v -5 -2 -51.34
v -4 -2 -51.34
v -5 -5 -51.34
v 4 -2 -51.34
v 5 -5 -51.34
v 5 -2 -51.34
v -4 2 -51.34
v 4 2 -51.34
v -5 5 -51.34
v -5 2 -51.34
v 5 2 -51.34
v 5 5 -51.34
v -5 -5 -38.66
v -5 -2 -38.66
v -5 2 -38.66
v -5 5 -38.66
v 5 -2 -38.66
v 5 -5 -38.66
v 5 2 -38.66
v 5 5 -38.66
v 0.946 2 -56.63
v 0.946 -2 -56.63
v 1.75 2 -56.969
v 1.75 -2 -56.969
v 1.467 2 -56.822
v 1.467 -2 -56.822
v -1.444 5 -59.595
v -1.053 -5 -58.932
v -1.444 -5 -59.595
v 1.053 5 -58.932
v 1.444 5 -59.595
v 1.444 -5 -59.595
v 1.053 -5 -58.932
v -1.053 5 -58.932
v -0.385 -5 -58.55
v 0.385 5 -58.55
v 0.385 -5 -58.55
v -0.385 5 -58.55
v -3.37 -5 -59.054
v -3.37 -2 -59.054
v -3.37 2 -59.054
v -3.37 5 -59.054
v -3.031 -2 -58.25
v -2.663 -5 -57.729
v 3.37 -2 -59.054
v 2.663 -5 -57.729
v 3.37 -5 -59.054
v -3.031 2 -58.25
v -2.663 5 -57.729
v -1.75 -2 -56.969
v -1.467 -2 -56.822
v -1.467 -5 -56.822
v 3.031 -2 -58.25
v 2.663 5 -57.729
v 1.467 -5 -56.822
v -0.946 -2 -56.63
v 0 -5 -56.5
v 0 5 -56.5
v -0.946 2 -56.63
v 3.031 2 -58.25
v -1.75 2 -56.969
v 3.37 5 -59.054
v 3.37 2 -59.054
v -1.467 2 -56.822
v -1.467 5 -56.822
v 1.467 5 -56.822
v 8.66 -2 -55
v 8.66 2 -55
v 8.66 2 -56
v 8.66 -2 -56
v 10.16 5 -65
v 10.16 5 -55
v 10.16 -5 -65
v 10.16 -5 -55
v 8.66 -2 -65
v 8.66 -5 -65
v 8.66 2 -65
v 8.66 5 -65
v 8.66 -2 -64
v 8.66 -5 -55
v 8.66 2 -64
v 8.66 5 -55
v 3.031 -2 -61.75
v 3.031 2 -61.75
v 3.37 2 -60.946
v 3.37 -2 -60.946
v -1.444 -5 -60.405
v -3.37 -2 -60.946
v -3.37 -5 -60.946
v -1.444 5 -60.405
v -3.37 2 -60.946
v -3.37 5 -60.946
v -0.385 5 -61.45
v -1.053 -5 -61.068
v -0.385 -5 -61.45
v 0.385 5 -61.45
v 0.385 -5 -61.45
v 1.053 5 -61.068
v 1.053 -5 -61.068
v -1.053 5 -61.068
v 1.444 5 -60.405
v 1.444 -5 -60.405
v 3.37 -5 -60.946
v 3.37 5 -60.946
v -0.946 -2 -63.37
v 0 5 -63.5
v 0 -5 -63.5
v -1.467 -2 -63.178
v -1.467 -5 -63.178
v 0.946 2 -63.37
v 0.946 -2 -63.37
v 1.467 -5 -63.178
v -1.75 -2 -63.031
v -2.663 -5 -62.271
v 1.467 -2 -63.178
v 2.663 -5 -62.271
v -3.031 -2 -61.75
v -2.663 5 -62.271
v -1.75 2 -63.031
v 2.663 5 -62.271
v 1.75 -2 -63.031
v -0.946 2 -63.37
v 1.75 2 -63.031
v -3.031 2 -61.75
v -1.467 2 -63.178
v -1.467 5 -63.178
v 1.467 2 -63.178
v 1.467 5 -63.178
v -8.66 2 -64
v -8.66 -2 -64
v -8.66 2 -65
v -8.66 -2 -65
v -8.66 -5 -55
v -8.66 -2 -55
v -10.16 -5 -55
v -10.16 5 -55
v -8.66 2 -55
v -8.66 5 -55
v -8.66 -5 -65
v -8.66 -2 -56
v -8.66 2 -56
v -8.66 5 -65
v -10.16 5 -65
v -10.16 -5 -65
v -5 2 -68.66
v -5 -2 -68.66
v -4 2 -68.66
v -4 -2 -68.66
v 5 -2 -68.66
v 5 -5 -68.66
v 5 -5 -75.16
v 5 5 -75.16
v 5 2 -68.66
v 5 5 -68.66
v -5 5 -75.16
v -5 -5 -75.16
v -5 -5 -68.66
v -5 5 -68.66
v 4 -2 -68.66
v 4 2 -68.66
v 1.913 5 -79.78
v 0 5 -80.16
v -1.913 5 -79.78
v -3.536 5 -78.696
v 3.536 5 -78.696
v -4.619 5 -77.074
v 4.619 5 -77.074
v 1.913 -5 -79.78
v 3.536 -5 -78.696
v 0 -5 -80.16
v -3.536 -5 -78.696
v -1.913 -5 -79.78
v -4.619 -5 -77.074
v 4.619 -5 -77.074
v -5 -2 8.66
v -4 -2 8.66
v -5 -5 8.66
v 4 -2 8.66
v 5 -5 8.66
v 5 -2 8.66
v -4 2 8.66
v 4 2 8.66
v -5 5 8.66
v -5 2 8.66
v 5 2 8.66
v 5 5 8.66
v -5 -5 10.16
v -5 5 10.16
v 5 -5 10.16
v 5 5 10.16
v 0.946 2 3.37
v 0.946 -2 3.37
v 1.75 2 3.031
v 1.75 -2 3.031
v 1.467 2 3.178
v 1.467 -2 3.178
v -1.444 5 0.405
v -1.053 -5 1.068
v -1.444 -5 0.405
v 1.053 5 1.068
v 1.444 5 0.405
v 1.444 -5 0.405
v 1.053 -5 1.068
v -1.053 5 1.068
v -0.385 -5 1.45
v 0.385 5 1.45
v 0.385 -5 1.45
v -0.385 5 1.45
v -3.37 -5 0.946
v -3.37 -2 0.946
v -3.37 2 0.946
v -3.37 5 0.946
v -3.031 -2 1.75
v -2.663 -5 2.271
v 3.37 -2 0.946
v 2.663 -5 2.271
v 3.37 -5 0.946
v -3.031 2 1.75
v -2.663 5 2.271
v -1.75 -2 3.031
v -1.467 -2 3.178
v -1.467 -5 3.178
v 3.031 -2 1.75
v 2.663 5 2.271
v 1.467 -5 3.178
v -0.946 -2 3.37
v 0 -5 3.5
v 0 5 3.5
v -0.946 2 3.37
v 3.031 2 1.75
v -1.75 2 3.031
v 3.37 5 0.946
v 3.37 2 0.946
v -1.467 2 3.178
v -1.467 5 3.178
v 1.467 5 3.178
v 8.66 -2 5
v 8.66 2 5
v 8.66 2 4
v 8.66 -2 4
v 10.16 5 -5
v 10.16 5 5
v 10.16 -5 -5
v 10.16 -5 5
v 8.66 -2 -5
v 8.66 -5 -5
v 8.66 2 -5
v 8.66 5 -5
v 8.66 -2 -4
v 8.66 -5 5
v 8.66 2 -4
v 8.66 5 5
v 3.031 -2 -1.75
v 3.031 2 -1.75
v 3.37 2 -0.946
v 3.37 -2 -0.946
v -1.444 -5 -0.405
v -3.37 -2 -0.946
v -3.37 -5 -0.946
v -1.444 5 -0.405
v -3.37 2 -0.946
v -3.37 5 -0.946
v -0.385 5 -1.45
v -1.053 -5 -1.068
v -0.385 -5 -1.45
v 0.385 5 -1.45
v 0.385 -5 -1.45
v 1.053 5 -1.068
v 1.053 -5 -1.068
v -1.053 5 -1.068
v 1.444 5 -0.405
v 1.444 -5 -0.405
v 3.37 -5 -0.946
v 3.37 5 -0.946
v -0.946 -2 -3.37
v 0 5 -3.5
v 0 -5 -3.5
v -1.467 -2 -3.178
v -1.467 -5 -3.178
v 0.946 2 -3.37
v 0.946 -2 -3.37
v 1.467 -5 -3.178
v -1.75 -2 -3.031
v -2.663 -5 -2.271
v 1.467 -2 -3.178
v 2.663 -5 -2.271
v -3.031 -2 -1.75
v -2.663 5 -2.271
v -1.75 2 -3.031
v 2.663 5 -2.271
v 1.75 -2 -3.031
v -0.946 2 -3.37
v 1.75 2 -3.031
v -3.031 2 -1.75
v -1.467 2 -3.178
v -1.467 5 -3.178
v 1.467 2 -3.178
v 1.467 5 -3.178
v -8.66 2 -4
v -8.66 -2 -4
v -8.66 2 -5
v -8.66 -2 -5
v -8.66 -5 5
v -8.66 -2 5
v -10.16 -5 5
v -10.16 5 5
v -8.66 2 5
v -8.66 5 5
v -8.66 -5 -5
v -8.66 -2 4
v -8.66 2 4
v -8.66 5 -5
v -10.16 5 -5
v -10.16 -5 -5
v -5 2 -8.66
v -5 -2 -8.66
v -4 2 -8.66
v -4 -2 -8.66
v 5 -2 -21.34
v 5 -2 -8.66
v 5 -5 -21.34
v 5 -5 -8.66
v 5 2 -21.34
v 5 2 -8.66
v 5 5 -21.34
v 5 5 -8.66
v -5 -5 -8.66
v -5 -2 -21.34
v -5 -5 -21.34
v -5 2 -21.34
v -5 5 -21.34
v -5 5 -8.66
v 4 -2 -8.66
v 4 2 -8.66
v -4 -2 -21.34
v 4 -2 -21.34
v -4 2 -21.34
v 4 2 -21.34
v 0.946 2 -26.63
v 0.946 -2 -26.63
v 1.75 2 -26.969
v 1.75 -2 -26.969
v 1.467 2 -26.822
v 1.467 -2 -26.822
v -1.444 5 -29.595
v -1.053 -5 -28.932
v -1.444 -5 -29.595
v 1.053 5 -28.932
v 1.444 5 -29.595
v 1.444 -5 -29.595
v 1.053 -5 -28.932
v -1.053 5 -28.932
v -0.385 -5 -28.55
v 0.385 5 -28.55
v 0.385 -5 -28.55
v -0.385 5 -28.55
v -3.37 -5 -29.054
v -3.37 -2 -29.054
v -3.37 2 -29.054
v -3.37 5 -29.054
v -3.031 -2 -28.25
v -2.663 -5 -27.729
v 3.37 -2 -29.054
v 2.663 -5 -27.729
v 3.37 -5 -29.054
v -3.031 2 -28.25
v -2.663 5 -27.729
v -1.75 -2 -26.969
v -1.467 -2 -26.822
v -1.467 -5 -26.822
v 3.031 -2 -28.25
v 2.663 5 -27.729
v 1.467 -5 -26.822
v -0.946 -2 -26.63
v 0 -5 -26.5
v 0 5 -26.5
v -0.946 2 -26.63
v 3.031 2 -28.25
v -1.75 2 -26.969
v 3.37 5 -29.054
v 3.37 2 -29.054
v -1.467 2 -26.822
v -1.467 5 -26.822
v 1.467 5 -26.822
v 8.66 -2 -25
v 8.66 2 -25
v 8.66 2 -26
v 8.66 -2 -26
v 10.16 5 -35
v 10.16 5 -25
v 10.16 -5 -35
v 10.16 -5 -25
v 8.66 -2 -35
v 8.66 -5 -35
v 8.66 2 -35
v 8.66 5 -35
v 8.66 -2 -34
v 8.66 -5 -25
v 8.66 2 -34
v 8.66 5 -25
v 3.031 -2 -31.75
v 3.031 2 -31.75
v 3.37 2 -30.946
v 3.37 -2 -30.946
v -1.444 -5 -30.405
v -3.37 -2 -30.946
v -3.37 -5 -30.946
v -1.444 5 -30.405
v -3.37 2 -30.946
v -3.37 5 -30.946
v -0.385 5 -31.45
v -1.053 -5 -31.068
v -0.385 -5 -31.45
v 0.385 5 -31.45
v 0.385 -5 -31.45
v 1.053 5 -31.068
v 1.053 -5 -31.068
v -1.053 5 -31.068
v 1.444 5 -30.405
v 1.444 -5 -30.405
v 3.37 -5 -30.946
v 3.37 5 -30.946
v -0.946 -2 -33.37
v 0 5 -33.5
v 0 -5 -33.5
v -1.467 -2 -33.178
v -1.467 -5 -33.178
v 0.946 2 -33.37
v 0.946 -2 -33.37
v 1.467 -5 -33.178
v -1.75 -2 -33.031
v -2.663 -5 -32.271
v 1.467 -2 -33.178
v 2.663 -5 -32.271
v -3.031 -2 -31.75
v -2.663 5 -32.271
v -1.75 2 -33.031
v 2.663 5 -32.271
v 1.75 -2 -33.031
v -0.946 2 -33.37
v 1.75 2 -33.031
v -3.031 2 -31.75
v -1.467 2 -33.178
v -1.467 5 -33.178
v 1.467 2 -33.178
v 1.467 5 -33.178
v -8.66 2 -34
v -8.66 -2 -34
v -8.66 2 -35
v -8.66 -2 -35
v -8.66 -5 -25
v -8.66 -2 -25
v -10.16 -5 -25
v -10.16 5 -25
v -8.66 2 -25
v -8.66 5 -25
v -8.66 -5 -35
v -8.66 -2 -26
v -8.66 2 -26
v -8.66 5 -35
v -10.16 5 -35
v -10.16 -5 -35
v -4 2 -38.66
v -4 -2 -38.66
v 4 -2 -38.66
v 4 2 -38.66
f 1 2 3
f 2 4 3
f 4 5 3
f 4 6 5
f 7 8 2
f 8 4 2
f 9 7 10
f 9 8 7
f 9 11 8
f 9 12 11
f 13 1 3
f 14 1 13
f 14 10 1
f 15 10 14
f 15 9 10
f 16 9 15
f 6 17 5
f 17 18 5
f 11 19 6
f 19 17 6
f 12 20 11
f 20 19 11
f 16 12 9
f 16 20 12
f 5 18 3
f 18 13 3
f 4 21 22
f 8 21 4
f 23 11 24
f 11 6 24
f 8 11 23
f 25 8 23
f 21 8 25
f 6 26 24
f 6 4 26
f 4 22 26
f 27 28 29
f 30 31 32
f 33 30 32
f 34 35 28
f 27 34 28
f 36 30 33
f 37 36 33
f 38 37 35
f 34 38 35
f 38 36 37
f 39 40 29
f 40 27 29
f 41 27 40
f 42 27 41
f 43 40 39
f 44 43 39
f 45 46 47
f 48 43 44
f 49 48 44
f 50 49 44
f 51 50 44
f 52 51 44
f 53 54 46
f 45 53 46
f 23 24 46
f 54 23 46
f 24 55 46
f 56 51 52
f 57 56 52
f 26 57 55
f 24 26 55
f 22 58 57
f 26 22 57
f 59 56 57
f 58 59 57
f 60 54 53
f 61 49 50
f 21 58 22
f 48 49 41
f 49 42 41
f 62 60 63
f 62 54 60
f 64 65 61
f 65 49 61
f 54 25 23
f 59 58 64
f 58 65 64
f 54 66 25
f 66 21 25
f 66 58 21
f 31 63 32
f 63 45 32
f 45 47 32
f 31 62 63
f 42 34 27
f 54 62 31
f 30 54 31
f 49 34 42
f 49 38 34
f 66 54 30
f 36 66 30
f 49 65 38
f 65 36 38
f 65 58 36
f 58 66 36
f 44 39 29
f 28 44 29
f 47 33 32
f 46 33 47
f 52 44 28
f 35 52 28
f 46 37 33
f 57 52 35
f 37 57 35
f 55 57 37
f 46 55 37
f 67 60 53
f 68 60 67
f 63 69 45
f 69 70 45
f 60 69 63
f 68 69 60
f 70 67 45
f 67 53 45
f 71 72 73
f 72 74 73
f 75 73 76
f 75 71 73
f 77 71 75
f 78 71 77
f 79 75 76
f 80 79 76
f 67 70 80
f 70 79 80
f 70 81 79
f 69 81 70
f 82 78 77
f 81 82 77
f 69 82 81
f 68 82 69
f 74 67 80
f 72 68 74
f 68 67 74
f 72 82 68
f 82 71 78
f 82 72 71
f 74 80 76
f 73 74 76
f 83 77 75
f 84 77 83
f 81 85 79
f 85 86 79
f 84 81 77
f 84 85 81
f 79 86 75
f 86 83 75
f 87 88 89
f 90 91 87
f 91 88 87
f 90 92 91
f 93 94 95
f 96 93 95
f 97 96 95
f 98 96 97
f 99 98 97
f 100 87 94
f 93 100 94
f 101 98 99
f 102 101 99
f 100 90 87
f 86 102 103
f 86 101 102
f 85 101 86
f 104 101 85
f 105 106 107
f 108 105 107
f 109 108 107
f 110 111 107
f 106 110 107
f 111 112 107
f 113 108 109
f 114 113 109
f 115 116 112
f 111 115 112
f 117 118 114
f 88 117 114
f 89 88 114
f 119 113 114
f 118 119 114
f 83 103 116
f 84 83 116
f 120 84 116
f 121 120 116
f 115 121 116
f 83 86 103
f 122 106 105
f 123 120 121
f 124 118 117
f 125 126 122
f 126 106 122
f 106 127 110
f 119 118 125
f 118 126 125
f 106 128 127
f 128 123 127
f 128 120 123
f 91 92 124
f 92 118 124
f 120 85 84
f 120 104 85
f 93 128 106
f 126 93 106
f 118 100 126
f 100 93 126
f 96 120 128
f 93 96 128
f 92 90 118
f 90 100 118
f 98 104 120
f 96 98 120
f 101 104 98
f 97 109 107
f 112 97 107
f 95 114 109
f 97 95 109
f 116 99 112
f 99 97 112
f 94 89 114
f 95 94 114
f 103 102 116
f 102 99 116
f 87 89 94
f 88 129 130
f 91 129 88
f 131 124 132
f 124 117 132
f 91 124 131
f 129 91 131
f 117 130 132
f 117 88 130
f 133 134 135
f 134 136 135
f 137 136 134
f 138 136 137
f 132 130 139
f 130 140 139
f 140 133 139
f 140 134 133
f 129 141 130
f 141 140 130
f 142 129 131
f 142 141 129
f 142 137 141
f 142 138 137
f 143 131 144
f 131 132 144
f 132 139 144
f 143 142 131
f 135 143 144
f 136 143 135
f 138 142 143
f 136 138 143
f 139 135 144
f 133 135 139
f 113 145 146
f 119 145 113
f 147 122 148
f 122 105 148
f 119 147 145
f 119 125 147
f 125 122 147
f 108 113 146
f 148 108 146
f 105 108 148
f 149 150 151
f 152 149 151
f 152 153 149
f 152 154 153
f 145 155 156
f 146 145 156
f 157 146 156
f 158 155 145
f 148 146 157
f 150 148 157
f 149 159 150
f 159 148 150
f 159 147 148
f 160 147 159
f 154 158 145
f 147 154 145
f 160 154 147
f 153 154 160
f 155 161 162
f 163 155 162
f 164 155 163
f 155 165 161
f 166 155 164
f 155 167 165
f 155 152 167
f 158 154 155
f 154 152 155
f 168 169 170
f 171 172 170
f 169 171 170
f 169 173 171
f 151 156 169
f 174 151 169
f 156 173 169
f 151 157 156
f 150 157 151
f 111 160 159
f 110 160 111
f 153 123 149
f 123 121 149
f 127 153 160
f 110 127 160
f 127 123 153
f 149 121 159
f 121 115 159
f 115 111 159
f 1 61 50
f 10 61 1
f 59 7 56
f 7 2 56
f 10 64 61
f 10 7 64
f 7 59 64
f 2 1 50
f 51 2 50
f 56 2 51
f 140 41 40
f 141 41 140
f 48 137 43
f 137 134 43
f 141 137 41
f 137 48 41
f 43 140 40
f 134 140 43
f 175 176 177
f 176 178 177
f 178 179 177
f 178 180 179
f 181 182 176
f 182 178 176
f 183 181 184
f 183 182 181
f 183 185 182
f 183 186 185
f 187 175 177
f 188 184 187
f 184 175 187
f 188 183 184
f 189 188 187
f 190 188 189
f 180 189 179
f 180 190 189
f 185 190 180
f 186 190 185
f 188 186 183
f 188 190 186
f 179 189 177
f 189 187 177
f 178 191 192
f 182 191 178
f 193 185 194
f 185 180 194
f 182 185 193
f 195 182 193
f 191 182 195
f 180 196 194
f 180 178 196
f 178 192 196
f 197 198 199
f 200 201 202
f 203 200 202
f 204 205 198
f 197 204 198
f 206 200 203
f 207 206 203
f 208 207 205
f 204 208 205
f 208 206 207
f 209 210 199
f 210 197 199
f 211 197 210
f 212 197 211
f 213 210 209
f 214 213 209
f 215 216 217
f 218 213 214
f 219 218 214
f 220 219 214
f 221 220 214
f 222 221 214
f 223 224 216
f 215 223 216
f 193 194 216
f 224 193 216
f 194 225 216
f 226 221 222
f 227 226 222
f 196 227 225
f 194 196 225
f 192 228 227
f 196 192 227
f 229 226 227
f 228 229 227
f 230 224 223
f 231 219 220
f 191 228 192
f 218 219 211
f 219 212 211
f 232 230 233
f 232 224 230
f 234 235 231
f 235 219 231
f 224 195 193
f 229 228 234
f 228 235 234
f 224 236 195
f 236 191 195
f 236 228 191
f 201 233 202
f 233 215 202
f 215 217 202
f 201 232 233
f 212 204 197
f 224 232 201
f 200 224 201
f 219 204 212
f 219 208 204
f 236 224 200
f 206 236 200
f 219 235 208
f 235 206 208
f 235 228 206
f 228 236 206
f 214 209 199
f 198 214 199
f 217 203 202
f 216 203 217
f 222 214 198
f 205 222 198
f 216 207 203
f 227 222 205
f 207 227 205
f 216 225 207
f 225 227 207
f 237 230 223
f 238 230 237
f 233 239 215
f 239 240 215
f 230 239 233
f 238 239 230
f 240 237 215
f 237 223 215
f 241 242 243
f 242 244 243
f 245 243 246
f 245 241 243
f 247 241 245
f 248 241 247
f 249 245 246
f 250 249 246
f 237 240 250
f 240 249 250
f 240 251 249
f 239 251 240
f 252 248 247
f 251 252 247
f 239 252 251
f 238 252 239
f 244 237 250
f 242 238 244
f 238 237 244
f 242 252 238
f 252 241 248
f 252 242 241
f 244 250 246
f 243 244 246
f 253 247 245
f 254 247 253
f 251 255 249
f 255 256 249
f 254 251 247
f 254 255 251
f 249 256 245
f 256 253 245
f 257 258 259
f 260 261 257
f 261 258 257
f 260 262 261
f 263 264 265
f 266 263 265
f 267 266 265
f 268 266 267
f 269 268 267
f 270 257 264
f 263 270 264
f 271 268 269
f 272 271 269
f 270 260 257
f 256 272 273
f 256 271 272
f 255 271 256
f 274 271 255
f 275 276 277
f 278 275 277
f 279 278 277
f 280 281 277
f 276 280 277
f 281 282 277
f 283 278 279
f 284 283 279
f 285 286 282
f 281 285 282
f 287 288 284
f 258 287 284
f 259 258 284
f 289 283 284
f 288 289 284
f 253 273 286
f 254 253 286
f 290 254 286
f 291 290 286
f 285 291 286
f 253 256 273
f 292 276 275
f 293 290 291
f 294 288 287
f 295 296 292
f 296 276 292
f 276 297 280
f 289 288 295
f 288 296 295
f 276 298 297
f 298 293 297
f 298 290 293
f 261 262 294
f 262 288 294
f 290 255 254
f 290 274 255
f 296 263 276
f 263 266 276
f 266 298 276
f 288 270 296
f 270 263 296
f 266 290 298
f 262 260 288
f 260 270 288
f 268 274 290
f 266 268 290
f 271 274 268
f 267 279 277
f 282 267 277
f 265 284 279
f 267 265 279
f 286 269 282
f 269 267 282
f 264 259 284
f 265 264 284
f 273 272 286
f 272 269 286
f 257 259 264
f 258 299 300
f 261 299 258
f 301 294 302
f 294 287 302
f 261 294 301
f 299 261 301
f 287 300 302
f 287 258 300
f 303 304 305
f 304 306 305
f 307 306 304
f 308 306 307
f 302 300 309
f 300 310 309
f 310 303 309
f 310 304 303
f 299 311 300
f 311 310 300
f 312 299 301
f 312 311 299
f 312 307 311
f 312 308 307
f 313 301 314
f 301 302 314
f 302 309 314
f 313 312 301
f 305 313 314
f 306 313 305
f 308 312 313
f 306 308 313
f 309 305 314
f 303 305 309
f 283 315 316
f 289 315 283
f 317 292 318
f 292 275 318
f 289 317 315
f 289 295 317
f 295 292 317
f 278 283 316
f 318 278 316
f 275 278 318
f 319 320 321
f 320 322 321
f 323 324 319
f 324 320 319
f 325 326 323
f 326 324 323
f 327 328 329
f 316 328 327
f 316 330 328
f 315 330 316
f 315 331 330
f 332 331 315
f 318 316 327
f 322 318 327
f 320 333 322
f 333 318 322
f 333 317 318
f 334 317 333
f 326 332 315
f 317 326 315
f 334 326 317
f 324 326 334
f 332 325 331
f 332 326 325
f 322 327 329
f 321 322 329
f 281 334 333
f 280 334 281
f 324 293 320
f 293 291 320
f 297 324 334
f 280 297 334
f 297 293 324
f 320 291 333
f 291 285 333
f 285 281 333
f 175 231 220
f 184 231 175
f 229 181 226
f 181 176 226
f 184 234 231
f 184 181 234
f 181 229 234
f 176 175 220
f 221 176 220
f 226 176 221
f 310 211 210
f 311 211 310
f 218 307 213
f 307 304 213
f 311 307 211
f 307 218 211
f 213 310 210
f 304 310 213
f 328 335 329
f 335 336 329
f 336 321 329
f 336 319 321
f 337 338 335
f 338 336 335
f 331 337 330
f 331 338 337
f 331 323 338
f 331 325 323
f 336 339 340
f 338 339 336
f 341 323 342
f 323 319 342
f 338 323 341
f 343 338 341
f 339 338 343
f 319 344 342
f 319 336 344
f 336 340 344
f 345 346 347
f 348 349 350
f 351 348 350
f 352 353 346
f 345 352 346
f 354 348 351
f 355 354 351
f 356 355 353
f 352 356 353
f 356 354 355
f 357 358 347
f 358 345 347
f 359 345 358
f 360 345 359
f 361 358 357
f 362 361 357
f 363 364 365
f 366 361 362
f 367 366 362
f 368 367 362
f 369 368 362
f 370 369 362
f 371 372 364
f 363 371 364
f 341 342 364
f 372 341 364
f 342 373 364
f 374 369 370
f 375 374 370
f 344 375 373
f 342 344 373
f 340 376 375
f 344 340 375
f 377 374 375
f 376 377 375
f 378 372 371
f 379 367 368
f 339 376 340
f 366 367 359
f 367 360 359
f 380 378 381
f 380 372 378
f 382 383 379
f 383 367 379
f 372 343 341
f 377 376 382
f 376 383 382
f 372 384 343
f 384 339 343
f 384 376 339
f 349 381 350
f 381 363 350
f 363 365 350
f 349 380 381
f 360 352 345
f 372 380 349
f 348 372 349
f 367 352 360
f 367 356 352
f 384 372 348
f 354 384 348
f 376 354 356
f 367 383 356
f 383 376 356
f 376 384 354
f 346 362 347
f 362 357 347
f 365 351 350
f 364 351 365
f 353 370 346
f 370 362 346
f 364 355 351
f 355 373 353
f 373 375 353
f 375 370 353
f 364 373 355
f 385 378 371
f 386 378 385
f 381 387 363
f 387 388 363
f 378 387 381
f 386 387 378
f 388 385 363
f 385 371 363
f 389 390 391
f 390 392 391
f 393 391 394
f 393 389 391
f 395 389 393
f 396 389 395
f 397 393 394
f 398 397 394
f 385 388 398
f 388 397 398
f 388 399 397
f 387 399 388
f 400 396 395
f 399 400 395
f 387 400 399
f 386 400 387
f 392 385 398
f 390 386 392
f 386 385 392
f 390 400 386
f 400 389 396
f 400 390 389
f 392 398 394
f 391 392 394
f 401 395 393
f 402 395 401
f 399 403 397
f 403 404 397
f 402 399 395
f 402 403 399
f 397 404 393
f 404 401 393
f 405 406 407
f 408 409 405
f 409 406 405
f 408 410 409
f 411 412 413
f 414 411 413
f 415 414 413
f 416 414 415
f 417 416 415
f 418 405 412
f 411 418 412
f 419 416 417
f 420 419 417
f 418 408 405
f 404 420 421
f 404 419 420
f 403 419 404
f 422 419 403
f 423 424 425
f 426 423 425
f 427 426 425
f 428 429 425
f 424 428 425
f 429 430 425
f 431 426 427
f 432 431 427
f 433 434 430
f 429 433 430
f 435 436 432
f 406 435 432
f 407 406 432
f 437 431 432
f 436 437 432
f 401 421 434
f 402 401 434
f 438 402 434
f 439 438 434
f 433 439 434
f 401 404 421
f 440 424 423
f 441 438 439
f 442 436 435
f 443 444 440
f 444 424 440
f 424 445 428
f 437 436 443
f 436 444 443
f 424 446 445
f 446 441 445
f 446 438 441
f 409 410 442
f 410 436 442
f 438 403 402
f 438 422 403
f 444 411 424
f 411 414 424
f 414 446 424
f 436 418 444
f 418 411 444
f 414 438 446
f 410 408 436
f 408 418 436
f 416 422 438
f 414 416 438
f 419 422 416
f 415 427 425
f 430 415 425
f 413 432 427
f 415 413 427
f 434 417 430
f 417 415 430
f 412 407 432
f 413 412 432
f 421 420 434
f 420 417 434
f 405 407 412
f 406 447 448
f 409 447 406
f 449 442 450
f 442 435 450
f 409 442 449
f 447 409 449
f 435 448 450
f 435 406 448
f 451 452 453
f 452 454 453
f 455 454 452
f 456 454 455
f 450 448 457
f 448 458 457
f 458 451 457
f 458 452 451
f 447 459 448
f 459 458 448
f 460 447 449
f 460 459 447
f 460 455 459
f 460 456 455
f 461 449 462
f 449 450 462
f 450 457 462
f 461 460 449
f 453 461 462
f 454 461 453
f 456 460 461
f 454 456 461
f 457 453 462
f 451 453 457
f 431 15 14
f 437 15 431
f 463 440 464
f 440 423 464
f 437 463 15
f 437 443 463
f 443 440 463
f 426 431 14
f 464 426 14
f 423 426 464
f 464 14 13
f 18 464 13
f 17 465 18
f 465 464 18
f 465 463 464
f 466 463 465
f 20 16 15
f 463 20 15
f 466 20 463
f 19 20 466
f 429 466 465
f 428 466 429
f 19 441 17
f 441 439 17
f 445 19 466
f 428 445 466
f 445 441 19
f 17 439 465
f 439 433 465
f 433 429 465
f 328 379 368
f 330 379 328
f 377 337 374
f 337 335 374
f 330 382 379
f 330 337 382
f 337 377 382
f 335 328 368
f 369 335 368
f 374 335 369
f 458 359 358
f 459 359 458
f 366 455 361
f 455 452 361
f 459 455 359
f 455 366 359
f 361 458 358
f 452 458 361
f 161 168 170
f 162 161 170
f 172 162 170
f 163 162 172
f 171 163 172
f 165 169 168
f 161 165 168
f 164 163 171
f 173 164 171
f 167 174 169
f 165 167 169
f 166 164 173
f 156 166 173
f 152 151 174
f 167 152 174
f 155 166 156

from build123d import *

# Parameters (mm, degrees)
SKETCH1_W                     = 10
SKETCH1_H                     = 1.5
BASE_BUTTERFLY_BLOCKS_DEPTH   = 5
SKETCH1_W_2                   = 1.5
SKETCH1_H_2                   = 10
BASE_BUTTERFLY_BLOCKS_2_DEPTH = 5
BASE_BUTTERFLY_BLOCKS_3_DEPTH = 5
BASE_BUTTERFLY_BLOCKS_4_DEPTH = 5
BASE_BUTTERFLY_BLOCKS_5_DEPTH = 5
BASE_BUTTERFLY_BLOCKS_6_DEPTH = 5
BASE_BUTTERFLY_FLEXURES_DEPTH = 2
LPATTERN1_COUNT               = 3
LPATTERN1_PITCH               = 30
SKETCH3_W                     = 10
SKETCH3_H                     = 10
PIP_DEPTH                     = 9.679491924
SKETCH5_W                     = 10
SKETCH5_H                     = 10
BOSS_EXTRUDE7_DEPTH           = 9.679491924
SKETCH6_W                     = 10
SKETCH6_H                     = 5
BOSS_EXTRUDE9_DEPTH           = 10


with BuildPart() as part:
    # Sketch1 → base_butterfly_blocks (new, symmetric)
    with BuildSketch(Plane(origin=(0, 0, 0), x_dir=(1, 0, 0), z_dir=(0, 1, 0))):
        with Locations((0, -9.410254038)):
            Rectangle(SKETCH1_W, SKETCH1_H)
    extrude(amount=BASE_BUTTERFLY_BLOCKS_DEPTH, both=True)



with BuildPart() as body_2:
    # Sketch1 → base_butterfly_blocks 2 (new, symmetric)
    with BuildSketch(Plane(origin=(0, 0, 0), x_dir=(1, 0, 0), z_dir=(0, 1, 0))):
        with Locations((-9.410254038, 0)):
            Rectangle(SKETCH1_W_2, SKETCH1_H_2)
    extrude(amount=BASE_BUTTERFLY_BLOCKS_2_DEPTH, both=True)


with BuildPart() as body_3:
    # Sketch1 → base_butterfly_blocks 3 (new, symmetric)
    with BuildSketch(Plane(origin=(0, 0, 0), x_dir=(1, 0, 0), z_dir=(0, 1, 0))):
        with Locations((0, 9.410254038)):
            Rectangle(SKETCH1_W, SKETCH1_H)
    extrude(amount=BASE_BUTTERFLY_BLOCKS_3_DEPTH, both=True)


with BuildPart() as body_4:
    # Sketch1 → base_butterfly_blocks 4 (new, symmetric)
    with BuildSketch(Plane(origin=(0, 0, 0), x_dir=(1, 0, 0), z_dir=(0, 1, 0))):
        with Locations((9.410254038, 0)):
            Rectangle(SKETCH1_W_2, SKETCH1_H_2)
    extrude(amount=BASE_BUTTERFLY_BLOCKS_4_DEPTH, both=True)


with BuildPart() as body_5:
    # Sketch1 → base_butterfly_blocks 5 (new, symmetric)
    with BuildSketch(Plane(origin=(0, 0, 0), x_dir=(1, 0, 0), z_dir=(0, 1, 0))):
        with BuildLine():
            Line((-1.444220457, 0.405249641), (-3.369847733, 0.945582496))
            ThreePointArc((-3.369847733, 0.945582496), (0, 3.5), (3.369847733, 0.945582496))
            Line((3.369847733, 0.945582496), (1.444220457, 0.405249641))
            ThreePointArc((1.444220457, 0.405249641), (0, 1.5), (-1.444220457, 0.405249641))
        make_face()
    extrude(amount=BASE_BUTTERFLY_BLOCKS_5_DEPTH, both=True)


with BuildPart() as body_6:
    # Sketch1 → base_butterfly_blocks 6 (new, symmetric)
    with BuildSketch(Plane(origin=(0, 0, 0), x_dir=(1, 0, 0), z_dir=(0, 1, 0))):
        with BuildLine():
            ThreePointArc((-1.444220457, -0.405249641), (0, -1.5), (1.444220457, -0.405249641))
            Line((1.444220457, -0.405249641), (3.369847733, -0.945582496))
            ThreePointArc((3.369847733, -0.945582496), (0, -3.5), (-3.369847733, -0.945582496))
            Line((-3.369847733, -0.945582496), (-1.444220457, -0.405249641))
        make_face()
    extrude(amount=BASE_BUTTERFLY_BLOCKS_6_DEPTH, both=True)


with BuildPart() as part_1:
    add(part.part)

    add(body_2.part)  # base_butterfly_flexures merges body 2

    add(body_3.part)  # base_butterfly_flexures merges body 3

    add(body_4.part)  # base_butterfly_flexures merges body 4

    add(body_5.part)  # base_butterfly_flexures merges body 5

    add(body_6.part)  # base_butterfly_flexures merges body 6
    # Sketch1<4> → base_butterfly_flexures (add, symmetric)
    with BuildSketch(Plane(origin=(0, 0, 0), x_dir=(1, 0, 0), z_dir=(0, 1, 0))):
        with BuildLine():
            Line((-8.660254038, 5), (-8.660254038, 4))
            Line((-8.660254038, 4), (-3.369847733, 0.945582496))
            ThreePointArc((-3.369847733, 0.945582496), (-3.225642474, 1.358392665), (-3.031088913, 1.75))
            Line((-3.031088913, 1.75), (-8.660254038, 5))
        make_face()
        with BuildLine():
            Line((-5, 8.660254038), (-1.75, 3.031088913))
            ThreePointArc((-1.75, 3.031088913), (-1.358392665, 3.225642474), (-0.945582496, 3.369847733))
            Line((-0.945582496, 3.369847733), (-4, 8.660254038))
            Line((-4, 8.660254038), (-5, 8.660254038))
        make_face()
        with BuildLine():
            Line((4, 8.660254038), (0.945582496, 3.369847733))
            ThreePointArc((0.945582496, 3.369847733), (1.358392665, 3.225642474), (1.75, 3.031088913))
            Line((1.75, 3.031088913), (5, 8.660254038))
            Line((5, 8.660254038), (4, 8.660254038))
        make_face()
        with BuildLine():
            Line((3.369847733, 0.945582496), (8.660254038, 4))
            Line((8.660254038, 4), (8.660254038, 5))
            Line((8.660254038, 5), (3.031088913, 1.75))
            ThreePointArc((3.031088913, 1.75), (3.225642474, 1.358392665), (3.369847733, 0.945582496))
        make_face()
        with BuildLine():
            ThreePointArc((3.369847733, -0.945582496), (3.225642474, -1.358392665), (3.031088913, -1.75))
            Line((3.031088913, -1.75), (8.660254038, -5))
            Line((8.660254038, -5), (8.660254038, -4))
            Line((8.660254038, -4), (3.369847733, -0.945582496))
        make_face()
        with BuildLine():
            ThreePointArc((1.75, -3.031088913), (1.358392665, -3.225642474), (0.945582496, -3.369847733))
            Line((0.945582496, -3.369847733), (4, -8.660254038))
            Line((4, -8.660254038), (5, -8.660254038))
            Line((5, -8.660254038), (1.75, -3.031088913))
        make_face()
        with BuildLine():
            ThreePointArc((-0.945582496, -3.369847733), (-1.358392665, -3.225642474), (-1.75, -3.031088913))
            Line((-1.75, -3.031088913), (-5, -8.660254038))
            Line((-5, -8.660254038), (-4, -8.660254038))
            Line((-4, -8.660254038), (-0.945582496, -3.369847733))
        make_face()
        with BuildLine():
            Line((-8.660254038, -5), (-3.031088913, -1.75))
            ThreePointArc((-3.031088913, -1.75), (-3.225642474, -1.358392665), (-3.369847733, -0.945582496))
            Line((-3.369847733, -0.945582496), (-8.660254038, -4))
            Line((-8.660254038, -4), (-8.660254038, -5))
        make_face()
    extrude(amount=BASE_BUTTERFLY_FLEXURES_DEPTH, both=True)


with BuildPart() as lpattern1_1:
    # LPattern1: pattern copy
    add(part_1.part.moved(Location(Vector(0, 0, -1) * (1 * LPATTERN1_PITCH))))


with BuildPart() as lpattern1_2:
    # LPattern1: pattern copy
    add(part_1.part.moved(Location(Vector(0, 0, -1) * (2 * LPATTERN1_PITCH))))


with BuildPart() as part_2:
    add(part_1.part)

    add(lpattern1_1.part)  # PIP merges LPattern1_1
    # Sketch3 → PIP (add)
    with BuildSketch(Plane(origin=(0, 0, -10.160254038), x_dir=(-1, 0, 0), z_dir=(0, 0, -1))):
        Rectangle(SKETCH3_W, SKETCH3_H)
    extrude(amount=PIP_DEPTH)

    add(lpattern1_2.part)  # Boss-Extrude7 merges LPattern1_2
    # Sketch5 → Boss-Extrude7 (add)
    with BuildSketch(Plane(origin=(0, 0, -40.160254038), x_dir=(-1, 0, 0), z_dir=(0, 0, -1))):
        Rectangle(SKETCH5_W, SKETCH5_H)
    extrude(amount=BOSS_EXTRUDE7_DEPTH)

    # Sketch6 → Boss-Extrude9 (add)
    with BuildSketch(Plane.XZ.offset(5)):
        with BuildLine():
            Line((-5, -75.160254038), (5, -75.160254038))
            ThreePointArc((5, -75.160254038), (0, -80.160254038), (-5, -75.160254038))
        make_face()
        with Locations((0, -72.660254038)):
            Rectangle(SKETCH6_W, SKETCH6_H)
    extrude(amount=-BOSS_EXTRUDE9_DEPTH)


solid = part_2.part
